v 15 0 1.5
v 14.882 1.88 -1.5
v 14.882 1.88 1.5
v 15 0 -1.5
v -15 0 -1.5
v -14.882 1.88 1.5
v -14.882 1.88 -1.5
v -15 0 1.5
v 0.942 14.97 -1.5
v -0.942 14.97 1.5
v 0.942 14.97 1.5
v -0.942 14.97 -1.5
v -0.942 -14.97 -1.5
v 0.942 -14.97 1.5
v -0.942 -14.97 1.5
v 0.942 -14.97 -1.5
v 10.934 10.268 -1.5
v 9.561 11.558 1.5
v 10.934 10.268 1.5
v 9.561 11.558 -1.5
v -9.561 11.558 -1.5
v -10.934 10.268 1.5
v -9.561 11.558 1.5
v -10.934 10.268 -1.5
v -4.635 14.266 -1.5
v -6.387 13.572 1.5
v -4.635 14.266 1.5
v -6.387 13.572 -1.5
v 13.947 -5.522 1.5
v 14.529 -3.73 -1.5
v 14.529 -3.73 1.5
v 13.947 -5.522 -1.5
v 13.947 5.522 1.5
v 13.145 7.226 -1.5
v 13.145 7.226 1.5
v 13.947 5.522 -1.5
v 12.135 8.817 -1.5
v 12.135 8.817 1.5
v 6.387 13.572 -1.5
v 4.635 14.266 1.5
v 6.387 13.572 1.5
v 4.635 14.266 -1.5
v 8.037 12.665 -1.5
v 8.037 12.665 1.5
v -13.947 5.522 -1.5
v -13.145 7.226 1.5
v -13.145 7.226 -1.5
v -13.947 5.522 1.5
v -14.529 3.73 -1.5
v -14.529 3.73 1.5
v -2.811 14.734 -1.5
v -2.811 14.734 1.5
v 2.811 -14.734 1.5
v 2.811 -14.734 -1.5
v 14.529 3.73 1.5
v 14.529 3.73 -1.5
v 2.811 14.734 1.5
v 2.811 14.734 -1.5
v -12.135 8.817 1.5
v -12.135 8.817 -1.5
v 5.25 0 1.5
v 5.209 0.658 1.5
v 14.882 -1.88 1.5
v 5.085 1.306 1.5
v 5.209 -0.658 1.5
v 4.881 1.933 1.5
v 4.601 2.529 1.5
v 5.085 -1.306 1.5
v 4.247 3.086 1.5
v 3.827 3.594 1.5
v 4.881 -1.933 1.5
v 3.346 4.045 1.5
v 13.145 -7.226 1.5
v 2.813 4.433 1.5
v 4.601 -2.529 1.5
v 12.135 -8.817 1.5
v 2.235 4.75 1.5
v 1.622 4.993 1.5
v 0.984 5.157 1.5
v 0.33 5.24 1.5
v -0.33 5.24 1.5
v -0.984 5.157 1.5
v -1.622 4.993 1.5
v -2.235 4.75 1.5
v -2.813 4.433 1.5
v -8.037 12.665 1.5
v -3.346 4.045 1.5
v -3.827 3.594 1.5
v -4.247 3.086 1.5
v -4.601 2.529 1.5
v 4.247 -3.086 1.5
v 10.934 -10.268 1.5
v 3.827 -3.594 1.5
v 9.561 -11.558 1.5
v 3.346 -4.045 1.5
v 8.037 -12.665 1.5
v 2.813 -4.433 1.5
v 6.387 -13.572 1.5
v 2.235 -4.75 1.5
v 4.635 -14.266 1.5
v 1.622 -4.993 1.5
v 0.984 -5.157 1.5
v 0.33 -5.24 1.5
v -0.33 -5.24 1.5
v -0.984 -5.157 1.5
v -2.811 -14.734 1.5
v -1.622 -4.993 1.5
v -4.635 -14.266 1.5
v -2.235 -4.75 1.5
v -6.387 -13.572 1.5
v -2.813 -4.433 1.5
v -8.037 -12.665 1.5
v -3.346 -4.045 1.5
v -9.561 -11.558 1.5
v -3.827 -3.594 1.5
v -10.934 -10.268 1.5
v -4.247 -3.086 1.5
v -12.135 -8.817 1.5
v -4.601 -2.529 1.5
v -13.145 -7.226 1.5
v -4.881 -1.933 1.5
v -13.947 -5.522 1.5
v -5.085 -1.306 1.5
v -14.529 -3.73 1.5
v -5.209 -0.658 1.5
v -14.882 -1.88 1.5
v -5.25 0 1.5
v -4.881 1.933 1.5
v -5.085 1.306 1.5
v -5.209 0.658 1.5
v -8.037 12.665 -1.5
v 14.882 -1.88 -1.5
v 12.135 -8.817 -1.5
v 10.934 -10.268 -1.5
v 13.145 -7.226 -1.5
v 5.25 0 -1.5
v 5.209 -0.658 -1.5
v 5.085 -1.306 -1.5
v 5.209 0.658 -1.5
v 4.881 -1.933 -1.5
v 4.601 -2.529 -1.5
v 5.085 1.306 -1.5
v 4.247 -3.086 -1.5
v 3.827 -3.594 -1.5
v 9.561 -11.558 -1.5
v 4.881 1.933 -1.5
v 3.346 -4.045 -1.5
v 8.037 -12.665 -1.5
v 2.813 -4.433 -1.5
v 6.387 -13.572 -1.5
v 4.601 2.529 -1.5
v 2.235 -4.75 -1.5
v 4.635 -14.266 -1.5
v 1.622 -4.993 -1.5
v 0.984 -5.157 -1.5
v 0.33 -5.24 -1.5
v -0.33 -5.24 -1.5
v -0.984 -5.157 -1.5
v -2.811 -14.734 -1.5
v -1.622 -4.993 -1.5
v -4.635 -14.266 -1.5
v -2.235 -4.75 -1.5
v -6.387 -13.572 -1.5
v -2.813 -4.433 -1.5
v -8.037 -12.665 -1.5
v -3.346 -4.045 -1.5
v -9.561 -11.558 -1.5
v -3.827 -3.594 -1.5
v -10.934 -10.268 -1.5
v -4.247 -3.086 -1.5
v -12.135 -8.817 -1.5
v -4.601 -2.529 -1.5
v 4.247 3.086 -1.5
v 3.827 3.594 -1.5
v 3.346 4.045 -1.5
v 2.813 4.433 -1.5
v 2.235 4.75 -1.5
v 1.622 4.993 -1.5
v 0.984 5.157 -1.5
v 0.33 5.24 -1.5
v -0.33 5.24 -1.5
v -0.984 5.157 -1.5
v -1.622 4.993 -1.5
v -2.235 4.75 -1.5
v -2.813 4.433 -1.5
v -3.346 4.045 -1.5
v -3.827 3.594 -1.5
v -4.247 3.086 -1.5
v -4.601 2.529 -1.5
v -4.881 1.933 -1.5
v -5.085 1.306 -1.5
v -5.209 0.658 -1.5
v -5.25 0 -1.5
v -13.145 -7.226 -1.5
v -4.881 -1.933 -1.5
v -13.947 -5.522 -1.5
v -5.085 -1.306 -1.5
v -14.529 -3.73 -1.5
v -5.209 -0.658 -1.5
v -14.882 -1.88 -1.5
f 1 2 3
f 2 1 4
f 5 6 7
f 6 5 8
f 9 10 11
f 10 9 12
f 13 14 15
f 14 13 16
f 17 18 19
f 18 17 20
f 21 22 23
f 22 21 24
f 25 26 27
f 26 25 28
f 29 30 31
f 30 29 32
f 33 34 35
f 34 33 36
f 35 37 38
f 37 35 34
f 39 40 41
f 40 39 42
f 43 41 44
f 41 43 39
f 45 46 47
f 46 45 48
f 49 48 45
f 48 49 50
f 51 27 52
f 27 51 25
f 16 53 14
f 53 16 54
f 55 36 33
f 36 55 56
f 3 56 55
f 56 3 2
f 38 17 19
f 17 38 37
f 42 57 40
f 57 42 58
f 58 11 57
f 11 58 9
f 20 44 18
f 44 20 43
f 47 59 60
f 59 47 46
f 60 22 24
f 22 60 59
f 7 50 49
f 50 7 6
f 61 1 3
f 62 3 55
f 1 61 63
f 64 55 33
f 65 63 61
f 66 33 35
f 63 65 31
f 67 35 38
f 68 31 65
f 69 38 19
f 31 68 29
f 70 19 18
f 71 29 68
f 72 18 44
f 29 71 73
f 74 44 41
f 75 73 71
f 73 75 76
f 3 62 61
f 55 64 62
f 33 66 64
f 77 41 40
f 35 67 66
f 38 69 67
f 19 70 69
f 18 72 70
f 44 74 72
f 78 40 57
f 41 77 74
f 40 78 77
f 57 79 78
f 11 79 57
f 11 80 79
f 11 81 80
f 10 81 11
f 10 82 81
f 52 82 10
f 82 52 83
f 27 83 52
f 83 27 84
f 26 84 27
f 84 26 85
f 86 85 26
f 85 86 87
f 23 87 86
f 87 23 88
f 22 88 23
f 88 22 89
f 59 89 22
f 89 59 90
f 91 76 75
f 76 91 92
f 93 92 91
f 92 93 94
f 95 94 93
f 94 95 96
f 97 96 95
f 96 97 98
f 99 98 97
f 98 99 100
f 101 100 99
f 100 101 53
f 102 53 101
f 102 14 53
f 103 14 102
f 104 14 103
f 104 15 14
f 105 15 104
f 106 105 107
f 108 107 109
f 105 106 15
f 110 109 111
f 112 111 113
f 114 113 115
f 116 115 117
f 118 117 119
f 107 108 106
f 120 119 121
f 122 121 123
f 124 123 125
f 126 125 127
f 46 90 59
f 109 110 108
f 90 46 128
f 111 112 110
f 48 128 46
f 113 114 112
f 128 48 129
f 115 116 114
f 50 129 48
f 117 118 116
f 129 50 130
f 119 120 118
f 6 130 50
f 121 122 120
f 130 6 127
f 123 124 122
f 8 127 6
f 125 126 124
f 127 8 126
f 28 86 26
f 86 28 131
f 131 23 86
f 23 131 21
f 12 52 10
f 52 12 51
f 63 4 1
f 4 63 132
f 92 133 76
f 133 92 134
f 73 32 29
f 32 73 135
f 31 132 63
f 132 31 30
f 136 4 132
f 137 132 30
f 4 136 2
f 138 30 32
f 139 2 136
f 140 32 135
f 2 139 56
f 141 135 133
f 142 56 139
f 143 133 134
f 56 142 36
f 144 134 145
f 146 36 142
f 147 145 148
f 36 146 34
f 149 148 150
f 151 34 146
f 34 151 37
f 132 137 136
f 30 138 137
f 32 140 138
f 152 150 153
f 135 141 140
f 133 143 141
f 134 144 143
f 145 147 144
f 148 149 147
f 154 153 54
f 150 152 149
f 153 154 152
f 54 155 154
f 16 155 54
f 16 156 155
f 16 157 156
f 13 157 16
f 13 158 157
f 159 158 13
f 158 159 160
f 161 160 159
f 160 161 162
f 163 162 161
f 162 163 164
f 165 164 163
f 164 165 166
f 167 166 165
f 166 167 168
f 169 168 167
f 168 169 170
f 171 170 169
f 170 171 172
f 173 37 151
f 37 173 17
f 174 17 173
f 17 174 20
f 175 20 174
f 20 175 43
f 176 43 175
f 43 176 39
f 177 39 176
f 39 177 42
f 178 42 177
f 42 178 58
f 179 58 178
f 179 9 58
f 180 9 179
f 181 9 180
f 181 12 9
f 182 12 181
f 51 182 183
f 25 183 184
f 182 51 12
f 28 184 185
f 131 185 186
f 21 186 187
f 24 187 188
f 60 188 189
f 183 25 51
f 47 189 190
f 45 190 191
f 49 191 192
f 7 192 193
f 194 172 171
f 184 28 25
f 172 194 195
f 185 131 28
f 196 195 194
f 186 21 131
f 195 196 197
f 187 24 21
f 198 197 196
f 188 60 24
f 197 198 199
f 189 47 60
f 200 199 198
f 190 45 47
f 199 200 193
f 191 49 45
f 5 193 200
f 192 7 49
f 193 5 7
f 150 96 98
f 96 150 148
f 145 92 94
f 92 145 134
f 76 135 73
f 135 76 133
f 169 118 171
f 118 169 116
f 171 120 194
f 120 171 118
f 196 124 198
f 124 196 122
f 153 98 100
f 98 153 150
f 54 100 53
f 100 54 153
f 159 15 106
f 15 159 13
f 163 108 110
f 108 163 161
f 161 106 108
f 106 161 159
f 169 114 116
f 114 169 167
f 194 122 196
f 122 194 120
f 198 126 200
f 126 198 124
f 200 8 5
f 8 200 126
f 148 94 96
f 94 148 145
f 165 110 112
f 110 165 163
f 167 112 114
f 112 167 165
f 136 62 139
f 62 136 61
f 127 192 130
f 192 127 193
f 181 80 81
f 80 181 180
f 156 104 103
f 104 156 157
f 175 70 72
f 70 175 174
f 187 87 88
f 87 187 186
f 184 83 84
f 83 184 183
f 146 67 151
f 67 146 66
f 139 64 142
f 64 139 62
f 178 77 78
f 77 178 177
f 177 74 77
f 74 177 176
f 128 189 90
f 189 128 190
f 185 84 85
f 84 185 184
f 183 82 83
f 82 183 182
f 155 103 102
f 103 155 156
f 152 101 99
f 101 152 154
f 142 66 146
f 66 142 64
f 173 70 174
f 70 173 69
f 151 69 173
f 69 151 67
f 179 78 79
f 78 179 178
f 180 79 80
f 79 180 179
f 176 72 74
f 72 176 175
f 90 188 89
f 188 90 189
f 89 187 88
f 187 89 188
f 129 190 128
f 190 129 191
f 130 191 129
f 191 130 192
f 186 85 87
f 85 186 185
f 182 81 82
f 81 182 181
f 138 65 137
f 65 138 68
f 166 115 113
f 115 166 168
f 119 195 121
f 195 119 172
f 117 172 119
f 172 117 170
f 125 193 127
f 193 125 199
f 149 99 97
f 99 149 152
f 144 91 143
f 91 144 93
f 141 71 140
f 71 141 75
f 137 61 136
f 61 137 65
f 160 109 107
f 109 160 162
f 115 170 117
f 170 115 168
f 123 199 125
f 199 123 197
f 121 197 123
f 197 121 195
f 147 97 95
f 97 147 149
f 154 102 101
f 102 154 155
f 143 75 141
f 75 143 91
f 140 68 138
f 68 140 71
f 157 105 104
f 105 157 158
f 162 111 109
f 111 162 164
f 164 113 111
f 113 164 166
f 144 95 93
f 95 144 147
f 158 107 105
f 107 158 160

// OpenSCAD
$fn = 50;


difference() {
	union() {
		translate(v = [0, 0, -1.5000000000]) {
			cylinder(h = 3, r = 15.0000000000);
		}
	}
	union() {
		translate(v = [0, 0, -100.0000000000]) {
			cylinder(h = 200, r = 5.2500000000);
		}
	}
}
